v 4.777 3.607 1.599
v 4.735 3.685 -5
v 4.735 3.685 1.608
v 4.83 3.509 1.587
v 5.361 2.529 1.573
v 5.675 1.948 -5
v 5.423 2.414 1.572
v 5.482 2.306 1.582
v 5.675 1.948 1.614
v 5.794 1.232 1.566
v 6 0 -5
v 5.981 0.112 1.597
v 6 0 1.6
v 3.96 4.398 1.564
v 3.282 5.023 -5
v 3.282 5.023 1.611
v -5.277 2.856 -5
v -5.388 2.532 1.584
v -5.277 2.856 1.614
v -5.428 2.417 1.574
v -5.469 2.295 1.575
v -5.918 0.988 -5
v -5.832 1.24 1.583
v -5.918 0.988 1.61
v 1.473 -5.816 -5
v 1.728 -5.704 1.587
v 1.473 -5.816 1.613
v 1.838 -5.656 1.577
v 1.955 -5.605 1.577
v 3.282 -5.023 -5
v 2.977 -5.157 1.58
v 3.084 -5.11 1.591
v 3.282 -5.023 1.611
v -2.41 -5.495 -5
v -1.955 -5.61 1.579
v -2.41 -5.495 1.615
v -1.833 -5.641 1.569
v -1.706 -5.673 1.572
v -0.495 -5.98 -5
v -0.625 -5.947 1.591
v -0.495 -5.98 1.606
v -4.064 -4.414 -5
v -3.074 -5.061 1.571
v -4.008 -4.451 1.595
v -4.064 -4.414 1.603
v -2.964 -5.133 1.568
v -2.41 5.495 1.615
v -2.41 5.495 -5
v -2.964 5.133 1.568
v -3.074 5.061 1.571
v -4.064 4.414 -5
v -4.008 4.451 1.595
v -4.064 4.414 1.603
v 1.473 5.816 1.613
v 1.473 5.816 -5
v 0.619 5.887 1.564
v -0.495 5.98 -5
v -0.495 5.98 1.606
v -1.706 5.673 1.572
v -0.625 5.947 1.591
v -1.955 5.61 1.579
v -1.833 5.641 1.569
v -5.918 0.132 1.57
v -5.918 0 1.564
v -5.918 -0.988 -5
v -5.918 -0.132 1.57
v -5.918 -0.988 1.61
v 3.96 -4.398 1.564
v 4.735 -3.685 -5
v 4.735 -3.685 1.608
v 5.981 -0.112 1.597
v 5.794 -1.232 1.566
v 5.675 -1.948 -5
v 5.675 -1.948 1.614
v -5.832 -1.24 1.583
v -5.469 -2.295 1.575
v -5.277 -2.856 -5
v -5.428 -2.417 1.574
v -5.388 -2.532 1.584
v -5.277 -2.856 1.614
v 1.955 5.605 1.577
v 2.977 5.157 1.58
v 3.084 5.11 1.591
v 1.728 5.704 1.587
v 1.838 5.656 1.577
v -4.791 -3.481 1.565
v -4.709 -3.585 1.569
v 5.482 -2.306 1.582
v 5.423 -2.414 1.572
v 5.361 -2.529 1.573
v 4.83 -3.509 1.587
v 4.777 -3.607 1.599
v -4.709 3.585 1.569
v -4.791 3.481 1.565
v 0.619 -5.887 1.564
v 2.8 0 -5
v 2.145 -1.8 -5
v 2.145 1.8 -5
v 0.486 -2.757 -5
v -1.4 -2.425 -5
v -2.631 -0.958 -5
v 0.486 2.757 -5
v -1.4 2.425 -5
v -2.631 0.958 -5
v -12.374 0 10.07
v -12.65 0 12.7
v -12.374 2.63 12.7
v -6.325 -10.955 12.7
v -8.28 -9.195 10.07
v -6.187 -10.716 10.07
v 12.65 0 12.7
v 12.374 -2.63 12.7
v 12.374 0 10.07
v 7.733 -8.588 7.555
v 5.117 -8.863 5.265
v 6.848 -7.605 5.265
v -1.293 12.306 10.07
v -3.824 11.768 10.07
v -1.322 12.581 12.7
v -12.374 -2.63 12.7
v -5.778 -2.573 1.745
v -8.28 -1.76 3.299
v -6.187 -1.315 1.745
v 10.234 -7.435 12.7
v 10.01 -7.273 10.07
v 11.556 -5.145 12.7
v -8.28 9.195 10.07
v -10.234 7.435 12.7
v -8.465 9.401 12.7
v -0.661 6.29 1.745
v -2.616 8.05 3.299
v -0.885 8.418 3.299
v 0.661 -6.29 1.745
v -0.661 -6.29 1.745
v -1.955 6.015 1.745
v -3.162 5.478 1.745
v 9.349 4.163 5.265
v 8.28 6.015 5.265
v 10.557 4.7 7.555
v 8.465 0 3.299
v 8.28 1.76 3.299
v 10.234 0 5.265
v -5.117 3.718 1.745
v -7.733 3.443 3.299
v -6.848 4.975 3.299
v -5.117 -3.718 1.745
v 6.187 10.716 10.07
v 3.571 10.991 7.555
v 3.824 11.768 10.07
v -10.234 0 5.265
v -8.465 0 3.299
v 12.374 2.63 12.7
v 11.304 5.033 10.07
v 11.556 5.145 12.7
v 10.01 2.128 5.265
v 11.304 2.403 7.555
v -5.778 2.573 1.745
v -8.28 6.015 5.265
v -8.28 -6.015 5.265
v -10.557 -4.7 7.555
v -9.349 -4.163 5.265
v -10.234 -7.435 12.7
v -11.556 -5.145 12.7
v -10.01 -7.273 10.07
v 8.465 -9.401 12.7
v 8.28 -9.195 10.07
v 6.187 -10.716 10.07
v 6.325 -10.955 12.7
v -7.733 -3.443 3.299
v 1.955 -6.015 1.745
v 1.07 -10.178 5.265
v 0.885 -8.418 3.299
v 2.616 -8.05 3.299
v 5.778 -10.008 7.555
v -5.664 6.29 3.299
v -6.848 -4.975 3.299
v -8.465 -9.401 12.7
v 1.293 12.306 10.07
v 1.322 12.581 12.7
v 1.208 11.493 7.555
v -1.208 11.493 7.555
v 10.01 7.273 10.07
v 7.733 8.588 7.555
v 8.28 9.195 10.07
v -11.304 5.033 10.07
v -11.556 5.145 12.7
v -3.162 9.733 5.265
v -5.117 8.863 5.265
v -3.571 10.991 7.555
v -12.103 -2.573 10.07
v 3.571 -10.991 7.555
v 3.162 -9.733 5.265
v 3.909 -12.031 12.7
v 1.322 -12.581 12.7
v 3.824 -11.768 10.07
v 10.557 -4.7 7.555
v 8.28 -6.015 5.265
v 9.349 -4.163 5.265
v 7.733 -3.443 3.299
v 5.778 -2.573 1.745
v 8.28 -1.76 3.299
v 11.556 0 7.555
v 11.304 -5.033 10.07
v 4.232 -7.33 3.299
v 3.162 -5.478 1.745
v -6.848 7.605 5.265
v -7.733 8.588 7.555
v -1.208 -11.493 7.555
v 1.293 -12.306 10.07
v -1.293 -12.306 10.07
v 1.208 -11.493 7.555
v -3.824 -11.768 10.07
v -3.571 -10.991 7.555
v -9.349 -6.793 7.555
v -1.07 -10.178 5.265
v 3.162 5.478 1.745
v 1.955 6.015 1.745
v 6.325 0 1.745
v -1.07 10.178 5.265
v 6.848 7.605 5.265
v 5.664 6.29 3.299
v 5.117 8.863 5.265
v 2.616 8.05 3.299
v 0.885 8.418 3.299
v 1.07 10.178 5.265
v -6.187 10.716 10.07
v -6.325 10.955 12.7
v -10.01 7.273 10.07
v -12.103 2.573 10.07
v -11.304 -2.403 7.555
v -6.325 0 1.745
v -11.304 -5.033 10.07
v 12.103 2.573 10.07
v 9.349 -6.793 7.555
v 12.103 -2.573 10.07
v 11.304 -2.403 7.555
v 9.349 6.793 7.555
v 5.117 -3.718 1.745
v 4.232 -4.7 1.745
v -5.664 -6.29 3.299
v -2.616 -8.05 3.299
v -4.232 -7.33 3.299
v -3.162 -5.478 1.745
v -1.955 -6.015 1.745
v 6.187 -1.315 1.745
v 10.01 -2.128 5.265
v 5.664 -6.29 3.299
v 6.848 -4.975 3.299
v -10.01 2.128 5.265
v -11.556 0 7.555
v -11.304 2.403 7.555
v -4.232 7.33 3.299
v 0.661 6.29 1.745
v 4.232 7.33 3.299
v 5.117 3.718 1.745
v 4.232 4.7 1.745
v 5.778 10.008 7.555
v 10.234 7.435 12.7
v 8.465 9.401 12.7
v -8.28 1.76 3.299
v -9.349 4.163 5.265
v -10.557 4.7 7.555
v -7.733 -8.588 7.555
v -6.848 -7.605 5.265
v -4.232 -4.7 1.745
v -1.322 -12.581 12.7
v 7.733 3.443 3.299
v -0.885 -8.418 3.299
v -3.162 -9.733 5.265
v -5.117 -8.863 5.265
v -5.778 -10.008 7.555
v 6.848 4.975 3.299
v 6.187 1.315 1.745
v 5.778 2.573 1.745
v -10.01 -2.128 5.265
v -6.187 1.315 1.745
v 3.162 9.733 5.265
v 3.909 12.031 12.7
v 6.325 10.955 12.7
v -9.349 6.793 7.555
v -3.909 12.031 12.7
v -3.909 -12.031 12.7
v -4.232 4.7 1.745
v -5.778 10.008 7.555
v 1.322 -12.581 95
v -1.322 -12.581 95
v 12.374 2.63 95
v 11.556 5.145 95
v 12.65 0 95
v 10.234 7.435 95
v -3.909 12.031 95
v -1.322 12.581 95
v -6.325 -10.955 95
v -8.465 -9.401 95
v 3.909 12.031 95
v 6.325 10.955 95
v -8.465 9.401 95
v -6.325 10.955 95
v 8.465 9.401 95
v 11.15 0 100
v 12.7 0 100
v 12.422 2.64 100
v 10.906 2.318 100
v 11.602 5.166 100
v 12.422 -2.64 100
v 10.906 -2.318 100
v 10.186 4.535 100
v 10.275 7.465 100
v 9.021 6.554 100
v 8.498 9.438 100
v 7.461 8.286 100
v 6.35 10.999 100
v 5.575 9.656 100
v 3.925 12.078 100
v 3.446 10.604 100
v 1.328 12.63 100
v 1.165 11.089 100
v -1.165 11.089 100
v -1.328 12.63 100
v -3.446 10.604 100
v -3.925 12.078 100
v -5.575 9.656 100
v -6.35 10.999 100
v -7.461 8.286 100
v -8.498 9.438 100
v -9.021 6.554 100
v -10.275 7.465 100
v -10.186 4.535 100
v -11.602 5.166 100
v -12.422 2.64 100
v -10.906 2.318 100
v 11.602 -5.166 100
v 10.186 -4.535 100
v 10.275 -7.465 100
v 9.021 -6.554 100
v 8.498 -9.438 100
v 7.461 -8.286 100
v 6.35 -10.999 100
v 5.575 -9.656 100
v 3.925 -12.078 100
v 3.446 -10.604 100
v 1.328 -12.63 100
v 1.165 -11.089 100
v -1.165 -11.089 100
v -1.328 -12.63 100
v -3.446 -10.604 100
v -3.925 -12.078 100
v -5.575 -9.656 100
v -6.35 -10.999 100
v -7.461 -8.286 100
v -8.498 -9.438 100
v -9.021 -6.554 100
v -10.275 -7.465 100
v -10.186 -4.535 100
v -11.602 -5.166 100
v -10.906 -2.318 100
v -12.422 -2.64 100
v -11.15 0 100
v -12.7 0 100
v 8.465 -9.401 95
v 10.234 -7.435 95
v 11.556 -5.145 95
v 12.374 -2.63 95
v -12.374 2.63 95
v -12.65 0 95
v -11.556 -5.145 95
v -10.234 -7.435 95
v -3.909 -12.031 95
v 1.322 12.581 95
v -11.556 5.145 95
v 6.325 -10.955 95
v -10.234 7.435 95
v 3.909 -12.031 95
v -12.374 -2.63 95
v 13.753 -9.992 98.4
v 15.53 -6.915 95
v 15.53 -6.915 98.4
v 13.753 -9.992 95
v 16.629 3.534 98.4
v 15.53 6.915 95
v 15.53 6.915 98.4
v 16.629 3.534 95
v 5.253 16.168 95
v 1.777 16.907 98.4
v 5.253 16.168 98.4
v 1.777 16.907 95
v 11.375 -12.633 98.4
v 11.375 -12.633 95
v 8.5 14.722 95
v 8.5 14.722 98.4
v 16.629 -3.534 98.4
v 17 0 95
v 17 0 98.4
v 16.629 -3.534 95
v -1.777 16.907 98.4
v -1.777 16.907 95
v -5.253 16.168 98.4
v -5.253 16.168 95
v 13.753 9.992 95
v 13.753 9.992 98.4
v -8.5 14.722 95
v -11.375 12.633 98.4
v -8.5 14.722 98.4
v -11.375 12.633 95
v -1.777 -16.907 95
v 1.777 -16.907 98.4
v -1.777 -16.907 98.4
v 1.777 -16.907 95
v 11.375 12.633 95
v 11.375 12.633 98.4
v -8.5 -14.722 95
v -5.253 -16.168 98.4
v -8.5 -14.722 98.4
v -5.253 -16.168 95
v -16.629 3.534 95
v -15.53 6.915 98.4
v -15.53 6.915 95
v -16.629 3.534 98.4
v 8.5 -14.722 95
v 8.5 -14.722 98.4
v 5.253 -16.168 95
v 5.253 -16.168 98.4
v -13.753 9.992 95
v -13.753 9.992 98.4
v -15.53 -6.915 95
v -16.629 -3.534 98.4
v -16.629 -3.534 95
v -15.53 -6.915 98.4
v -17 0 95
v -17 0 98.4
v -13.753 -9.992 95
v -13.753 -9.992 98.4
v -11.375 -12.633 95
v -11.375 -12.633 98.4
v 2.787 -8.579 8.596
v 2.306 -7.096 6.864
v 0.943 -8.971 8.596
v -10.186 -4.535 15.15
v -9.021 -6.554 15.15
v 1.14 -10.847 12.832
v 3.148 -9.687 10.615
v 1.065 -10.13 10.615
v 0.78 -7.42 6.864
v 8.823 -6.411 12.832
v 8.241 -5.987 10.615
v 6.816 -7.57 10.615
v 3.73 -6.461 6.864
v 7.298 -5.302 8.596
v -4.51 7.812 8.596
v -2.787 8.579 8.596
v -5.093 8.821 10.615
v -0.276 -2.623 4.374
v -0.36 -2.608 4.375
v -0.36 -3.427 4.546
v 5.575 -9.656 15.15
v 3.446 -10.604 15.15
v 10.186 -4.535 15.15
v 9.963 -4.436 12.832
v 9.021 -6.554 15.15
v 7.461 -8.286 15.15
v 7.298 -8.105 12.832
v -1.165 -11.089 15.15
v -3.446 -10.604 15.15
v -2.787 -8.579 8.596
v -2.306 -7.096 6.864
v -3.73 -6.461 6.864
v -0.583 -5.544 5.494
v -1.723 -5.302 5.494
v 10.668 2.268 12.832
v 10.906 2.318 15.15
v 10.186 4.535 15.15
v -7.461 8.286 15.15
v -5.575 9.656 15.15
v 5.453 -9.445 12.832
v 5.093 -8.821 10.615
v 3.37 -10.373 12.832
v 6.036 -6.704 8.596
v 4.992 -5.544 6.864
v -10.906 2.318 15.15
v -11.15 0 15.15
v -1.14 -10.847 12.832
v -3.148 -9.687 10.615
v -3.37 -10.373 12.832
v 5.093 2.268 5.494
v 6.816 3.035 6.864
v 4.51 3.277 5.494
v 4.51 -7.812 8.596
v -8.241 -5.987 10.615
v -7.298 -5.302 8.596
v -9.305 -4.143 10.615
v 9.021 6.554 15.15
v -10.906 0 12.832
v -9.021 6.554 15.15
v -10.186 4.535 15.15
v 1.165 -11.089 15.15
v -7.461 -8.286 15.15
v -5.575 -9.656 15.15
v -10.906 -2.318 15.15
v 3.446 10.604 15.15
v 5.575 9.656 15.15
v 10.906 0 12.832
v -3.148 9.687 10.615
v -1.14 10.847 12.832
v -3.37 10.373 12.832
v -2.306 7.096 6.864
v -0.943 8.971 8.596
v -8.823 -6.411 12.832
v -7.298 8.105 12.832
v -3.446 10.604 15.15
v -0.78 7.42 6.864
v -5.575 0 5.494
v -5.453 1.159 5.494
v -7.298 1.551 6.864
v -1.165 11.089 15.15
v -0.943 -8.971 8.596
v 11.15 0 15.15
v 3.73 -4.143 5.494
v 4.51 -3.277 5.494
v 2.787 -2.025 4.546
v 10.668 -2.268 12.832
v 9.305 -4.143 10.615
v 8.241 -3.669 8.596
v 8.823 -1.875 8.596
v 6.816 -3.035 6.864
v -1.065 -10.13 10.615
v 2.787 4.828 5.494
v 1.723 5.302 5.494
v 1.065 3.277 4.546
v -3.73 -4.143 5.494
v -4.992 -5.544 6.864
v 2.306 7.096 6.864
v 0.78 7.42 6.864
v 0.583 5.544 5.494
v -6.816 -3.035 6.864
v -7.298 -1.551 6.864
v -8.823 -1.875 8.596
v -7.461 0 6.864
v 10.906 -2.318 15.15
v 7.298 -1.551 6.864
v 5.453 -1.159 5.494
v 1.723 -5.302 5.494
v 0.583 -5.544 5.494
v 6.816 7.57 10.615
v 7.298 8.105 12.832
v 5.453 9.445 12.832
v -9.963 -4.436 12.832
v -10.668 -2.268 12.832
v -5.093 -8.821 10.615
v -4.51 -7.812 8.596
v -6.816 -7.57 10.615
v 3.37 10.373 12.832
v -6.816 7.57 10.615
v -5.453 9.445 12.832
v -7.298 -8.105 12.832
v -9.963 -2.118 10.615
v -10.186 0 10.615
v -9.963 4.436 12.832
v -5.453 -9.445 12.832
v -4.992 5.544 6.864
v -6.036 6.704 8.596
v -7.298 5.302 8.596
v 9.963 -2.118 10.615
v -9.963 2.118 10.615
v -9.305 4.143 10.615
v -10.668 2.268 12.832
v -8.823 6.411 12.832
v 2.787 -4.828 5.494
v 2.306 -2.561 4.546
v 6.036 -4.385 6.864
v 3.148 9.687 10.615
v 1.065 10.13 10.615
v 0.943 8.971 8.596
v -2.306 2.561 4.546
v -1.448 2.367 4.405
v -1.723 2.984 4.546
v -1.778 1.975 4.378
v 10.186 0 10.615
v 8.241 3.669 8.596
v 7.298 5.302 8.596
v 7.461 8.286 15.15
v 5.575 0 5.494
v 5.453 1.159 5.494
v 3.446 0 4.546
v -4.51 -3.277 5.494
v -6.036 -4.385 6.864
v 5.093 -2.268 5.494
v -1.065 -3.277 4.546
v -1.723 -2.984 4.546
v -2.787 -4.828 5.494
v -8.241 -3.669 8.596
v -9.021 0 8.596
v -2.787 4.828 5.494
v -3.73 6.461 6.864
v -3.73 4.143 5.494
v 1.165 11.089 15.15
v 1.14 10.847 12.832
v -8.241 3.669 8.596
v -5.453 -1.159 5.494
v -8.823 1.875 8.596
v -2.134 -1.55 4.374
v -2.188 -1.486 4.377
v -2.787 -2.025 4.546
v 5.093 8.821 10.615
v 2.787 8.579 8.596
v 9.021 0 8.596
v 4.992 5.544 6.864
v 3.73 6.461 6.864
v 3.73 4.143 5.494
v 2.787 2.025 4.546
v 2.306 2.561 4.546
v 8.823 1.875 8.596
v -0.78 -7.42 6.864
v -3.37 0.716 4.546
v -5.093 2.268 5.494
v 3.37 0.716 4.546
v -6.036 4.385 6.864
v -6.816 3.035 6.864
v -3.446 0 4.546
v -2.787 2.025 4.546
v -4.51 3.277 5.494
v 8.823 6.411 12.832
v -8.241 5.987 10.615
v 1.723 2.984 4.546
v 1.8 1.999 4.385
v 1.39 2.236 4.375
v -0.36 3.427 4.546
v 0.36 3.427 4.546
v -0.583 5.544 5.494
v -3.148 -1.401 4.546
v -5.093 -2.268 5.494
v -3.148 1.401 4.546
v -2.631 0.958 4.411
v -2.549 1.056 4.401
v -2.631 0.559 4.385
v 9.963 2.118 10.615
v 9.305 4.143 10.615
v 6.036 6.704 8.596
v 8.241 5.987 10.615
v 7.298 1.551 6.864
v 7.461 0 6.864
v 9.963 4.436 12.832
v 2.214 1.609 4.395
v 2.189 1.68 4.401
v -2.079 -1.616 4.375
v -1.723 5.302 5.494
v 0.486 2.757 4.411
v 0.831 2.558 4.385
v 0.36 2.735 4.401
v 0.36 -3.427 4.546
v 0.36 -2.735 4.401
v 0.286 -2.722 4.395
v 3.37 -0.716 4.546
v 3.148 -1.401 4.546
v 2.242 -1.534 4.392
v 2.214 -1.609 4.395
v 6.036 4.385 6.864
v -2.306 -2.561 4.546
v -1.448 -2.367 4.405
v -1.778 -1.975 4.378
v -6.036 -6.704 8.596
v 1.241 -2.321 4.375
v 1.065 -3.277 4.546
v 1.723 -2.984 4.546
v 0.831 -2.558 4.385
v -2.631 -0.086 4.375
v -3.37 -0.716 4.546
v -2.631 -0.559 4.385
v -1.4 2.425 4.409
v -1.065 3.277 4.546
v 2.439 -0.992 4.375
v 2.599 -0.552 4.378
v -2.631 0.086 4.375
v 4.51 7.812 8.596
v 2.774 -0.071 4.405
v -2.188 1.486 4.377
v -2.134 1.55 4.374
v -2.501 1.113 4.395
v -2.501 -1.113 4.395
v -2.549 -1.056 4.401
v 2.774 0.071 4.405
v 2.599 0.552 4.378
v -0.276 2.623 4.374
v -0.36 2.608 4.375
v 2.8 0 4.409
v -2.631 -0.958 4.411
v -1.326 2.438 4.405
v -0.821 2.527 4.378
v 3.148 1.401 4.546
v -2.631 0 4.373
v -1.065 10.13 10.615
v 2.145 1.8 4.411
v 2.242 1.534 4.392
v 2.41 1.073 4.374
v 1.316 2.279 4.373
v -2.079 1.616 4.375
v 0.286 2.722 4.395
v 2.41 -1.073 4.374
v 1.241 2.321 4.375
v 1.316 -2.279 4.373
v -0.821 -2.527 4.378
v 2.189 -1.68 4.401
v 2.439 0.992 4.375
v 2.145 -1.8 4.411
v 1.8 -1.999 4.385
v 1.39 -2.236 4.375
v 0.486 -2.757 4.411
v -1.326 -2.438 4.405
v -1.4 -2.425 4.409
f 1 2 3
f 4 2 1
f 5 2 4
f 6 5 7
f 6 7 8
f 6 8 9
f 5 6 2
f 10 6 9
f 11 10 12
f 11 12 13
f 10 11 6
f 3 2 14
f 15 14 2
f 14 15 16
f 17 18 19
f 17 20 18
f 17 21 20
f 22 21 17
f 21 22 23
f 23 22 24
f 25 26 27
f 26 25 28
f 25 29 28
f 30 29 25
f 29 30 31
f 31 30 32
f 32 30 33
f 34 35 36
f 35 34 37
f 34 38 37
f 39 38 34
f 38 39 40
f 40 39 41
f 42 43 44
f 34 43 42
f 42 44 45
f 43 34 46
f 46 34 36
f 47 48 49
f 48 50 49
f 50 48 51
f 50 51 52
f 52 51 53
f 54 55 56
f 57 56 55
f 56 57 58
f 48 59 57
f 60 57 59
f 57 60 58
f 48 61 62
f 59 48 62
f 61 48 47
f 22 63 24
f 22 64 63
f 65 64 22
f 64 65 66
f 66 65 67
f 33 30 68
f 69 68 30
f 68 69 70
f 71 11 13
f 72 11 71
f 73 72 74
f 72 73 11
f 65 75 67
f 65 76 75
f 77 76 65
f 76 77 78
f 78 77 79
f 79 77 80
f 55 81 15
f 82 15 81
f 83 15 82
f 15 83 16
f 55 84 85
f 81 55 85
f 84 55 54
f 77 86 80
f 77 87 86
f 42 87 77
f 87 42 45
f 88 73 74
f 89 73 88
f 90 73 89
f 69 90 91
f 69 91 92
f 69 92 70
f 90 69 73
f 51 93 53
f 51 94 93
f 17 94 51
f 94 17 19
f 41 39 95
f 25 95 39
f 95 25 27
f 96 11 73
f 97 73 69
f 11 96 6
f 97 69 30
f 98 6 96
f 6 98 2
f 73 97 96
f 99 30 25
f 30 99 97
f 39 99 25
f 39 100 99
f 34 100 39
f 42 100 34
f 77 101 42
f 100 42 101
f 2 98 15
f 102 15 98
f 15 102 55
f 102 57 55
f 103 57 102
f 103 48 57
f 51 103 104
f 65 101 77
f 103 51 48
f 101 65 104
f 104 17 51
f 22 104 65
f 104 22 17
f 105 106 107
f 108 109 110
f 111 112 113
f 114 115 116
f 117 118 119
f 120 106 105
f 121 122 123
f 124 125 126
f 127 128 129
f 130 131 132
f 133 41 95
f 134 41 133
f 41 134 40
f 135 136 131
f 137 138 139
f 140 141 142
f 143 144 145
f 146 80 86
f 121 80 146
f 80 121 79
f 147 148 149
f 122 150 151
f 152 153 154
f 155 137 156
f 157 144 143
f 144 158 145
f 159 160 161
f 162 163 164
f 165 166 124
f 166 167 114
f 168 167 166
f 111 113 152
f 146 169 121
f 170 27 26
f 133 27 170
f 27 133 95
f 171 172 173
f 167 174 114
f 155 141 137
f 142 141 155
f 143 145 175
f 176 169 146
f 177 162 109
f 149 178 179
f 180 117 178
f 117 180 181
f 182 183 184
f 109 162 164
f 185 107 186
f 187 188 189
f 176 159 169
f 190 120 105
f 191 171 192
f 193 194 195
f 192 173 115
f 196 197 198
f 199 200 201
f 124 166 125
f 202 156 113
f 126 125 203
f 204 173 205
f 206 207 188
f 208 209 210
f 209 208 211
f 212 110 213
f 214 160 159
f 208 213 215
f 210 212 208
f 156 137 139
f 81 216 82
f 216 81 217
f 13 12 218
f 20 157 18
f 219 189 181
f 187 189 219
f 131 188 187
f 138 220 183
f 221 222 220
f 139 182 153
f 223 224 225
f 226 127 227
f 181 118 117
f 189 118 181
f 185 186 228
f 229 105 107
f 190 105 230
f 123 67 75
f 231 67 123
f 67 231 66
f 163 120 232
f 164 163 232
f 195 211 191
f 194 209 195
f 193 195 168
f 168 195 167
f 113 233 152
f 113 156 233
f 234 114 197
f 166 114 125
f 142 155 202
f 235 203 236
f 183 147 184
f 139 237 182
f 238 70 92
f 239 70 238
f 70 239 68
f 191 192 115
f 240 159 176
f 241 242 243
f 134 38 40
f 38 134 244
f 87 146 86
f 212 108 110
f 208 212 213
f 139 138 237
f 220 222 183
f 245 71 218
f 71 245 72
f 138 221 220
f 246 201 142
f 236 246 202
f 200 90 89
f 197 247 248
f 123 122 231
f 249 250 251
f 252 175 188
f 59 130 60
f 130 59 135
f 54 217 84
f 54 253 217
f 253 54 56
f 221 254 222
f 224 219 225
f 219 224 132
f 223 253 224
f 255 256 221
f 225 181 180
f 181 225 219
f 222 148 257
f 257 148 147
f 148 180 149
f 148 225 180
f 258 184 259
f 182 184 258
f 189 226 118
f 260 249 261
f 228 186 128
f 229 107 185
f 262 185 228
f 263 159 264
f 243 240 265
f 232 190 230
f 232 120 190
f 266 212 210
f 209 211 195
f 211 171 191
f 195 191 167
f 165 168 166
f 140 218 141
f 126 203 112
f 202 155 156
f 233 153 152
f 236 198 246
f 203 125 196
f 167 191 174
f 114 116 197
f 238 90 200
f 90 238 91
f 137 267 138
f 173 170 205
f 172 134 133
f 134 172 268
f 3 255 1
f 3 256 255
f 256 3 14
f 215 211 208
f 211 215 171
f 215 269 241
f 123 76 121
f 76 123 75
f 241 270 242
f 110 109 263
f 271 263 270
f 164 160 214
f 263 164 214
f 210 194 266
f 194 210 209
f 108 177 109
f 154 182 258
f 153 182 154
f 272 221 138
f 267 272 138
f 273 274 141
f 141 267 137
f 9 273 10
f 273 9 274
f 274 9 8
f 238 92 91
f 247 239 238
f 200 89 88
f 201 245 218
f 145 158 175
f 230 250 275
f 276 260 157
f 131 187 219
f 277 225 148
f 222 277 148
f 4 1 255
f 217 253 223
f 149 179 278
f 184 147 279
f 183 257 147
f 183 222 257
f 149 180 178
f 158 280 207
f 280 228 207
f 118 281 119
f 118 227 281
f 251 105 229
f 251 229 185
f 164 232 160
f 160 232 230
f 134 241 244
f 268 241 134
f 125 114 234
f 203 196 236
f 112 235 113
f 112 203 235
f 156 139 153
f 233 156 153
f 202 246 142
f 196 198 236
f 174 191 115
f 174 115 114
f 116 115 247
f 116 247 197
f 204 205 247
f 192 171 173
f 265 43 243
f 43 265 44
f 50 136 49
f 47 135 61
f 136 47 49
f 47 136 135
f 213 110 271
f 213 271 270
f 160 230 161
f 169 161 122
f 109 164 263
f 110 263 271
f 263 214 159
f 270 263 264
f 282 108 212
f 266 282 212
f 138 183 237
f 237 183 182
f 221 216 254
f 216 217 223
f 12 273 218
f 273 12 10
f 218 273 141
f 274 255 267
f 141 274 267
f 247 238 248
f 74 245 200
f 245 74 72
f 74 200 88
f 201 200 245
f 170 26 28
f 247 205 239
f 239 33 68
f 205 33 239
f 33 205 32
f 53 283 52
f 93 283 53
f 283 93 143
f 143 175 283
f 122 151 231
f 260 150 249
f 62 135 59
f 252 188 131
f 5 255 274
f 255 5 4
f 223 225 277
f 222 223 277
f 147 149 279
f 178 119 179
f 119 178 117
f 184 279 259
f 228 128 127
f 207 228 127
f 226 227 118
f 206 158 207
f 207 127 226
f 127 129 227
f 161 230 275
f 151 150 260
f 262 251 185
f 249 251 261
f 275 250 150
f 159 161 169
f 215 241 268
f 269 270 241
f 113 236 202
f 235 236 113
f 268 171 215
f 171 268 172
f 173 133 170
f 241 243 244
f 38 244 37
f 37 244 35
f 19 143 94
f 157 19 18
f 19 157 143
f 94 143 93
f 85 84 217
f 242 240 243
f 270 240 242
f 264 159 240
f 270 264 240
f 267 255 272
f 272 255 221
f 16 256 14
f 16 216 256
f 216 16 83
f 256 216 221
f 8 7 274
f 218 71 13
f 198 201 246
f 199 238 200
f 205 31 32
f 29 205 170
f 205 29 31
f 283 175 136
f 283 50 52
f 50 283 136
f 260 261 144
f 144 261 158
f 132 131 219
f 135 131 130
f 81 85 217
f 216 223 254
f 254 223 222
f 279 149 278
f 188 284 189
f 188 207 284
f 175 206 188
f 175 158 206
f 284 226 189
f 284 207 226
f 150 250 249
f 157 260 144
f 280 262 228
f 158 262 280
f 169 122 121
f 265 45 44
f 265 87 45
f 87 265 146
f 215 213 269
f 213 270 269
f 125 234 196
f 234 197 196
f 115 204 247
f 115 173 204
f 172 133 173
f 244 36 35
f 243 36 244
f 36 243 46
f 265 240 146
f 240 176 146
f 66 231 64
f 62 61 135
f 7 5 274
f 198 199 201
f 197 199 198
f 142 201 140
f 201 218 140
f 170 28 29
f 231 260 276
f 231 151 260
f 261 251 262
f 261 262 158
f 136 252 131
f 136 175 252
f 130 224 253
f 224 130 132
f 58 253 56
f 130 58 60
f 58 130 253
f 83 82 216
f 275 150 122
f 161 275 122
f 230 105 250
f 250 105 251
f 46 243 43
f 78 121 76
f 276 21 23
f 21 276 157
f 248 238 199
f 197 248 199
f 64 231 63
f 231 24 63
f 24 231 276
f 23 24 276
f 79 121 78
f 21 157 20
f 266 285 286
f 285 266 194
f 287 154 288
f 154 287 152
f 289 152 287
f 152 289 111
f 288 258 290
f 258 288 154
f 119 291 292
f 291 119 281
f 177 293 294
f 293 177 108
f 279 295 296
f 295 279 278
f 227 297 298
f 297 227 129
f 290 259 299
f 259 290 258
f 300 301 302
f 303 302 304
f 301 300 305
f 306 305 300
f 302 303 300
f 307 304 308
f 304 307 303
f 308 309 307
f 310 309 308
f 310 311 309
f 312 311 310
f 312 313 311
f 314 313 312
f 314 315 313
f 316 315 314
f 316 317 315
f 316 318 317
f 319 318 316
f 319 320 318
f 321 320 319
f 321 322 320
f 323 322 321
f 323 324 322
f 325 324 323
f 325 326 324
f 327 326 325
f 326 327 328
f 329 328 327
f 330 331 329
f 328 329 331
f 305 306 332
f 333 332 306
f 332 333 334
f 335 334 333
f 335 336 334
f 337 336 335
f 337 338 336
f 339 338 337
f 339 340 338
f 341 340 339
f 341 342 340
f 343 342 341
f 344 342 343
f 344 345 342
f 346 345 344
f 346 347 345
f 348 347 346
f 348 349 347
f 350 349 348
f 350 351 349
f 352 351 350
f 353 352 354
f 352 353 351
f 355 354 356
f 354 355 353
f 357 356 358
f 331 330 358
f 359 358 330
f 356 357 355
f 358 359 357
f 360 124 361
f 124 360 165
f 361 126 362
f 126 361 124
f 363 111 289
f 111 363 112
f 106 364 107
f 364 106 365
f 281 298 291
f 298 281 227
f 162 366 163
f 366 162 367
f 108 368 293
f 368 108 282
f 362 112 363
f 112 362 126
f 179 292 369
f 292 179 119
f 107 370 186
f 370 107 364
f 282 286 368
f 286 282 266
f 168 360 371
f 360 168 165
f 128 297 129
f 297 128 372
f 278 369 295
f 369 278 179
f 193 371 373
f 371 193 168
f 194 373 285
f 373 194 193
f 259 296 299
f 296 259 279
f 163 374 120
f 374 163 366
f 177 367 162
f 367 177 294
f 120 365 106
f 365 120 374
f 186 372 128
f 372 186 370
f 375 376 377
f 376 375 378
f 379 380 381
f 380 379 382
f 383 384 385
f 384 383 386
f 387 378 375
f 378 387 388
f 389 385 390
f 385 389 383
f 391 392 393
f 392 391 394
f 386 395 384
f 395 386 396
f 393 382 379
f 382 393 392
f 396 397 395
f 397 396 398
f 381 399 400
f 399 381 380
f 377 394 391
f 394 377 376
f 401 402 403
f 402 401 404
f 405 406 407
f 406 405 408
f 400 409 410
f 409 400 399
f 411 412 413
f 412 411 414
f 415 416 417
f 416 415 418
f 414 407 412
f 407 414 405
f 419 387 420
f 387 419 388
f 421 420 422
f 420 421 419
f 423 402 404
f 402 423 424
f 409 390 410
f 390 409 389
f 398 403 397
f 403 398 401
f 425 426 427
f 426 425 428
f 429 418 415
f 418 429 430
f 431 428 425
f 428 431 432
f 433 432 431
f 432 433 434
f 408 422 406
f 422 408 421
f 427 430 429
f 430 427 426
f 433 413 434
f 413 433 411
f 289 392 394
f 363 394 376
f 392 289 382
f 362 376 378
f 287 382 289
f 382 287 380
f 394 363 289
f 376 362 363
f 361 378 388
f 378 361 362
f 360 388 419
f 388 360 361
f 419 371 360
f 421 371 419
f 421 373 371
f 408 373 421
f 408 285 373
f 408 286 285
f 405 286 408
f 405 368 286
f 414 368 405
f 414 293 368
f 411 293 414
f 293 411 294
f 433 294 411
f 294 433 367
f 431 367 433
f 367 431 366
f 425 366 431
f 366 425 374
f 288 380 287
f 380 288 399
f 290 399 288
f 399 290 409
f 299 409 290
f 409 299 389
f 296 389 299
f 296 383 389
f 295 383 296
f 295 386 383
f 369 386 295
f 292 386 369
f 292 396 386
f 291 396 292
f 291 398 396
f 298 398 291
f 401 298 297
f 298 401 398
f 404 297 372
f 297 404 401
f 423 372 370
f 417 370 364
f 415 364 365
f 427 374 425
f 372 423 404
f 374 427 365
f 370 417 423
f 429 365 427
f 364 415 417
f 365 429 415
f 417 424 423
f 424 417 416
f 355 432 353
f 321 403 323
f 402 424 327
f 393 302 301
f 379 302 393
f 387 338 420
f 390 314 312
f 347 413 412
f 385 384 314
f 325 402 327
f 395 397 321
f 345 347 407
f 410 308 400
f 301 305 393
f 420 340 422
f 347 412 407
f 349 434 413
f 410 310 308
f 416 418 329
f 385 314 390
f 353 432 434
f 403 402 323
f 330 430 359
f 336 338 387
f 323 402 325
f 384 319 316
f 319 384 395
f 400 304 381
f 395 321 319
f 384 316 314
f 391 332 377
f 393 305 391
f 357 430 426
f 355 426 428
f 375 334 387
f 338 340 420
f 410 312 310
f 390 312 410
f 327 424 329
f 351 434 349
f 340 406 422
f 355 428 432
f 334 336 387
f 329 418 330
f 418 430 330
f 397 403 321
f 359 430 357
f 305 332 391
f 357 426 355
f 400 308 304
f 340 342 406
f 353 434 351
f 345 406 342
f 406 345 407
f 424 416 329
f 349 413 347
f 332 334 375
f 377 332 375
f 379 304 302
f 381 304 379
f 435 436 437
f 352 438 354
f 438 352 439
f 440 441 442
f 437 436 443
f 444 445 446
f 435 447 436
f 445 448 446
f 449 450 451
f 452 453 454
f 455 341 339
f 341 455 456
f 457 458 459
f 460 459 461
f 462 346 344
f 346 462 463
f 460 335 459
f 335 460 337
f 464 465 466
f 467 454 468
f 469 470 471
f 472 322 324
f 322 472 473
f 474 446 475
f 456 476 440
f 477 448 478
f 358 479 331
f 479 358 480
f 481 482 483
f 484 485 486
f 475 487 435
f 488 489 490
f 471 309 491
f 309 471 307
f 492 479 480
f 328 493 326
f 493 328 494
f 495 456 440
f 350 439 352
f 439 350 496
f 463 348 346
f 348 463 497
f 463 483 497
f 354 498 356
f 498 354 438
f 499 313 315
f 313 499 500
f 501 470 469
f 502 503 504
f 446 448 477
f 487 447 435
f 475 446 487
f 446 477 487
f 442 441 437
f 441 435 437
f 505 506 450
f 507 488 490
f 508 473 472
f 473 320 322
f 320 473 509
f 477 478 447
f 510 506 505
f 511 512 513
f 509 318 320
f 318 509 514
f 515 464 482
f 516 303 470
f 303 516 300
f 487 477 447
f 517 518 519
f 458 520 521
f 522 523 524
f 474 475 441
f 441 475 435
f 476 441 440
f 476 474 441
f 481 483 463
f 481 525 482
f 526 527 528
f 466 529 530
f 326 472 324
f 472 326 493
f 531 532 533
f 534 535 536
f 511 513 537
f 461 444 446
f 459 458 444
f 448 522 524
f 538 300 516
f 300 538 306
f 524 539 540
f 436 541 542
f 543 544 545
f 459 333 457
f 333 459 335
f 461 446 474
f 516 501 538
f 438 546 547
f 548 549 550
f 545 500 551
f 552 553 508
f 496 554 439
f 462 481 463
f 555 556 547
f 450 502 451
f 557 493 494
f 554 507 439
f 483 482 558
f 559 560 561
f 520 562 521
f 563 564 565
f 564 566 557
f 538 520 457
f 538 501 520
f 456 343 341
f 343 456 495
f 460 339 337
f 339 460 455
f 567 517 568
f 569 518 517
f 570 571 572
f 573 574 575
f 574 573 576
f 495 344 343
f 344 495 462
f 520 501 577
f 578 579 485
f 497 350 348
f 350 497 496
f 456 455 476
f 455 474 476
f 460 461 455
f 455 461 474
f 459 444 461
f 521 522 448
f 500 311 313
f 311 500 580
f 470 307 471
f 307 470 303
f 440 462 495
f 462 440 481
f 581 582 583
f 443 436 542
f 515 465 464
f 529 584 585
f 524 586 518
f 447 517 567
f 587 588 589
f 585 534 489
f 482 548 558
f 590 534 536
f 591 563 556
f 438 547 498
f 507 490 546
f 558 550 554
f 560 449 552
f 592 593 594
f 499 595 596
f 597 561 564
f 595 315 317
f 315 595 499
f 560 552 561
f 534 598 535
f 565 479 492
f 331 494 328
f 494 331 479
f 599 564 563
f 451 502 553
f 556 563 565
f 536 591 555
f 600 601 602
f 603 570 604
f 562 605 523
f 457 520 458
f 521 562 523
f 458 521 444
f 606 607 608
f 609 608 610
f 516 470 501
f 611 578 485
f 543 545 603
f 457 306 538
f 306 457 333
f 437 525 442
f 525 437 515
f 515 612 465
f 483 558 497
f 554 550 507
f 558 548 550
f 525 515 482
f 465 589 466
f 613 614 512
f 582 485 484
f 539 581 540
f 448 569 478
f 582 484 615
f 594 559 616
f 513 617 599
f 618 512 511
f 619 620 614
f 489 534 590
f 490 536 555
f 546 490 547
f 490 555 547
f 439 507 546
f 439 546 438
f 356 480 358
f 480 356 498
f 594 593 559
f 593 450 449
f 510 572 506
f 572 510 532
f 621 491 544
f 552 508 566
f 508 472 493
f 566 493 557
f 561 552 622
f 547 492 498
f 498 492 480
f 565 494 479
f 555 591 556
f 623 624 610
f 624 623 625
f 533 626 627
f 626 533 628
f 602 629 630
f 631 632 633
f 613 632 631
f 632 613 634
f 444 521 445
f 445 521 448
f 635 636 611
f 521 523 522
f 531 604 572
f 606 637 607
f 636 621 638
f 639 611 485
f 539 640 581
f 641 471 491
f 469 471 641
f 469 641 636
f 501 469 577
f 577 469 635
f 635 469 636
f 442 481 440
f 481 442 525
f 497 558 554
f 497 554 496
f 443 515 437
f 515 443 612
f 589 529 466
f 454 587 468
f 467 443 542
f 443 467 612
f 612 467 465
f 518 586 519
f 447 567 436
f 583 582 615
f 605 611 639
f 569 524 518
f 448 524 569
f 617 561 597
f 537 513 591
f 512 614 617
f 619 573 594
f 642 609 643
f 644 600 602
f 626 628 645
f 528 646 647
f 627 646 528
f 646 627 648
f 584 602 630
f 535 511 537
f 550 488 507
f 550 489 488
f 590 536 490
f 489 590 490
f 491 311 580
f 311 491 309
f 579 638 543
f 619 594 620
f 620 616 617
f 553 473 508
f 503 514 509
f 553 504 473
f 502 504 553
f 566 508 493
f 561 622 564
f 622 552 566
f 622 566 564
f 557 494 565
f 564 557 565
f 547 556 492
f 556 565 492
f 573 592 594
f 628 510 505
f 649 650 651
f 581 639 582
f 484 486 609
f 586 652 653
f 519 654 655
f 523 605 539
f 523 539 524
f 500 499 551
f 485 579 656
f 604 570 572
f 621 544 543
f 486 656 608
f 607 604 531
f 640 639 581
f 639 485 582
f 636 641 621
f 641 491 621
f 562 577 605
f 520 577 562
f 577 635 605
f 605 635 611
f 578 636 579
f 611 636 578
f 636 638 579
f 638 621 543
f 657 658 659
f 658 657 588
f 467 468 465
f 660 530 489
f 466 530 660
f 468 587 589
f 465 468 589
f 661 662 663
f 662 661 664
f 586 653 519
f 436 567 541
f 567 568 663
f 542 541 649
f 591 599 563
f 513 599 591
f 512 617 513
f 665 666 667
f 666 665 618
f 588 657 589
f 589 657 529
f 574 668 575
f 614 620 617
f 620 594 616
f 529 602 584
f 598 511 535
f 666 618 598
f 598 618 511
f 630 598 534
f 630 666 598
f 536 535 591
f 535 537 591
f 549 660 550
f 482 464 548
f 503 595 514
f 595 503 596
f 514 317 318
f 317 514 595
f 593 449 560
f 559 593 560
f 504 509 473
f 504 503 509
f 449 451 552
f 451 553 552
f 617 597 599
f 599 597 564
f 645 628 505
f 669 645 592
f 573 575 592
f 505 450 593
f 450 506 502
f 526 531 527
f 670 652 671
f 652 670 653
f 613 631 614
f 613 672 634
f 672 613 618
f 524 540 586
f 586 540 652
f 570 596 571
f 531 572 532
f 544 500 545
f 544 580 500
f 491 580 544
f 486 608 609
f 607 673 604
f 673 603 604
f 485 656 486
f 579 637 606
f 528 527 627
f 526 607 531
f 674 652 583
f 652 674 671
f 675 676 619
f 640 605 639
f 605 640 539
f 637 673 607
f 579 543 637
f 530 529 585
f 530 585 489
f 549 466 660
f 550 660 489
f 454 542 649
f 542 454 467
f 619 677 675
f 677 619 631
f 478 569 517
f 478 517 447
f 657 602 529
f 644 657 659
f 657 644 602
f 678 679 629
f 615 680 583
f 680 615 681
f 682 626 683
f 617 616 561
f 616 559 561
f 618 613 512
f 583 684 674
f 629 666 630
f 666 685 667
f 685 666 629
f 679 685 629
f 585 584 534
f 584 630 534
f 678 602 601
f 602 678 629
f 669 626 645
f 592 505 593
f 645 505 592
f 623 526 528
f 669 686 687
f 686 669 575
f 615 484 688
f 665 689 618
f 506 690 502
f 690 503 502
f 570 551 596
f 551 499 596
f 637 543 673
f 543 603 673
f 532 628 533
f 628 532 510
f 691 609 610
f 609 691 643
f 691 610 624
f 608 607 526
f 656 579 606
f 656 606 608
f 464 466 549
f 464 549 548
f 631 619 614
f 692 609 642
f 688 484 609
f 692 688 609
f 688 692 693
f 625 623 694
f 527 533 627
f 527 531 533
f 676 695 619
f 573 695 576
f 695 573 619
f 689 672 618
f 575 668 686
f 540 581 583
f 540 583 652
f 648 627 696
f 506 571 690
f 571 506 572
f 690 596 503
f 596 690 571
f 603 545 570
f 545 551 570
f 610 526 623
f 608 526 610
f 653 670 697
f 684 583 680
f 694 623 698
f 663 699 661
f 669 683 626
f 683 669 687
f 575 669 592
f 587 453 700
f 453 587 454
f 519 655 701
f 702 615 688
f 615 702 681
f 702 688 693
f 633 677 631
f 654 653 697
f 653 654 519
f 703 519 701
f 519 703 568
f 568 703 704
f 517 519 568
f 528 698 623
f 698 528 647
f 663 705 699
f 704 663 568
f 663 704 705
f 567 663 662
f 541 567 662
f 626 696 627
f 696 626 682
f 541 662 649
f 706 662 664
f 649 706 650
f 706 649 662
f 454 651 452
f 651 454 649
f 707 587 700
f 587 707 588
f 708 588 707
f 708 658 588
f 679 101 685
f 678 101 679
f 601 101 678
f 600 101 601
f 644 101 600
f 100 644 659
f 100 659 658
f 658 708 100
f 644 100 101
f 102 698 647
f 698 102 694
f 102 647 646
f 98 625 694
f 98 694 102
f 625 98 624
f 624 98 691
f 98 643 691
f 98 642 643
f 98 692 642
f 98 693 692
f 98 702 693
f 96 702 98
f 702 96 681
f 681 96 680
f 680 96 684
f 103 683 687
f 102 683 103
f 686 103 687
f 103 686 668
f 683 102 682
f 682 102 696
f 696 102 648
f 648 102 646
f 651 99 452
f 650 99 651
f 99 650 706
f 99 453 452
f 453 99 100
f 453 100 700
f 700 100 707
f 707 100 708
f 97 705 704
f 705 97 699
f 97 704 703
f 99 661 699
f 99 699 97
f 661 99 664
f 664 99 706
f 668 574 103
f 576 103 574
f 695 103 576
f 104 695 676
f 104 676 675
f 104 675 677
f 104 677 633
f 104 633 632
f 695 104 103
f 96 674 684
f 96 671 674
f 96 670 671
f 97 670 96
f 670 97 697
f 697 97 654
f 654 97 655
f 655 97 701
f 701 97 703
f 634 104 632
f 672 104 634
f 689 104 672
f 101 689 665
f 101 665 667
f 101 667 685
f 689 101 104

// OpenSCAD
/*
    QUILL2THREADLESS  - an adapter for using a quill stem for
                        handlebar height adjutment with threadless
                        1 1/8" steerers. Can be 3D printed via a
                        selective laser melting machine (SLM) from
                        services like JLC3DP (stainless steel or
                        titanium) or PCBWay (aluminium, stainless or
                        titanium. It could also be machined from
                        a billet of metal if you have access to those
                        facilities. See usage instructions, see below.
    PRICING
                        Stainless Steel     =   < AU$80 (PCBWay)
                                                ~ AU$40 (JLC3DP)

                        Aluminium           =   ~ AU$40 (PCBWay only)
                                                  (^ recommended!)

                        Titanium            =  ~ AU$297 (PCBWay)
                                                ~ AU$82 (JLC3DP)

                        Pricing accurate as of 13 September 2025.
*/

difference(){
    union(){
        translate([0,0,-5]) cylinder(d=12,h=7.5);
        translate([0,0,12.7]) sphere(d=25.3);
        translate([0,0,12.7]) cylinder(d=25.3,h=87.3);
        translate([0,0,95]) cylinder(d=34,h=3.4);
        translate([0,0,98.4]) cylinder(d1=34,d2=25.4,h=1.6);
    }
    hull(){
        translate([0,0,15.15]) cylinder(d=22.3,h=100);
        translate([0,0,15.15]) sphere(d=22.3);
    }
    translate([0,0,-6]) cylinder(d=5.6,h=13);
}

/*  HOW TO USE:-
        To install the star nut in the fork's steerer tube...
        NOTE: Lubricate all contacting parts well! Inside & out.
        1.  put an M5 x 25 screw down the inside of quill adapter so
            the thread protrudes from the hole at the bottom.
        2.  Place 3 to 5 washers over the screw threads.
        3.  Screw the starnut onto the M5 screw until it's lightly 
            tight, making sure the wings of the starnut point up towards 
            the quill adapter.
        4.  Using a press (or a rubber mallet), use the quill adapter 
            to drive the starnut as far down the fork steerer tube as 
            you can.
        5.  Undo the screw from the starnut, releasing the quill 
            adapter, the screw and the wasers from the starnut.

        To Install the fork and quill stem adapter...
        6.  Insert the fork steerer tube into the frame head tube, 
            complete with crown bearings and races on the steerer.
        7.  Put the head races and bearings on the fork steerer tube.
        8.  Repplace the M5x25 screw with an M5x35 screw inside the
            quill adapter through the hole at the bottom, using a 
            long Allen wrench then.
        9.  With the Allen wrench still in the head of the screw, and
            withot the top bearings, races and spacers installed,
            insert the quill adapter into the top end of the steerer
            tube, tighting the screw into the starnut when they engage.
            If you have enough spacers, screw and starnut should pull
            the bearings and spacers tight, just like a head cap, screw
            and starnut do on a normal threadless head. Use the correct
            torque to lock the screw down.
        10. Finally, insert a standard 22.2mm quill stem and adjust it
            and tighten it just like the old days.
*/
